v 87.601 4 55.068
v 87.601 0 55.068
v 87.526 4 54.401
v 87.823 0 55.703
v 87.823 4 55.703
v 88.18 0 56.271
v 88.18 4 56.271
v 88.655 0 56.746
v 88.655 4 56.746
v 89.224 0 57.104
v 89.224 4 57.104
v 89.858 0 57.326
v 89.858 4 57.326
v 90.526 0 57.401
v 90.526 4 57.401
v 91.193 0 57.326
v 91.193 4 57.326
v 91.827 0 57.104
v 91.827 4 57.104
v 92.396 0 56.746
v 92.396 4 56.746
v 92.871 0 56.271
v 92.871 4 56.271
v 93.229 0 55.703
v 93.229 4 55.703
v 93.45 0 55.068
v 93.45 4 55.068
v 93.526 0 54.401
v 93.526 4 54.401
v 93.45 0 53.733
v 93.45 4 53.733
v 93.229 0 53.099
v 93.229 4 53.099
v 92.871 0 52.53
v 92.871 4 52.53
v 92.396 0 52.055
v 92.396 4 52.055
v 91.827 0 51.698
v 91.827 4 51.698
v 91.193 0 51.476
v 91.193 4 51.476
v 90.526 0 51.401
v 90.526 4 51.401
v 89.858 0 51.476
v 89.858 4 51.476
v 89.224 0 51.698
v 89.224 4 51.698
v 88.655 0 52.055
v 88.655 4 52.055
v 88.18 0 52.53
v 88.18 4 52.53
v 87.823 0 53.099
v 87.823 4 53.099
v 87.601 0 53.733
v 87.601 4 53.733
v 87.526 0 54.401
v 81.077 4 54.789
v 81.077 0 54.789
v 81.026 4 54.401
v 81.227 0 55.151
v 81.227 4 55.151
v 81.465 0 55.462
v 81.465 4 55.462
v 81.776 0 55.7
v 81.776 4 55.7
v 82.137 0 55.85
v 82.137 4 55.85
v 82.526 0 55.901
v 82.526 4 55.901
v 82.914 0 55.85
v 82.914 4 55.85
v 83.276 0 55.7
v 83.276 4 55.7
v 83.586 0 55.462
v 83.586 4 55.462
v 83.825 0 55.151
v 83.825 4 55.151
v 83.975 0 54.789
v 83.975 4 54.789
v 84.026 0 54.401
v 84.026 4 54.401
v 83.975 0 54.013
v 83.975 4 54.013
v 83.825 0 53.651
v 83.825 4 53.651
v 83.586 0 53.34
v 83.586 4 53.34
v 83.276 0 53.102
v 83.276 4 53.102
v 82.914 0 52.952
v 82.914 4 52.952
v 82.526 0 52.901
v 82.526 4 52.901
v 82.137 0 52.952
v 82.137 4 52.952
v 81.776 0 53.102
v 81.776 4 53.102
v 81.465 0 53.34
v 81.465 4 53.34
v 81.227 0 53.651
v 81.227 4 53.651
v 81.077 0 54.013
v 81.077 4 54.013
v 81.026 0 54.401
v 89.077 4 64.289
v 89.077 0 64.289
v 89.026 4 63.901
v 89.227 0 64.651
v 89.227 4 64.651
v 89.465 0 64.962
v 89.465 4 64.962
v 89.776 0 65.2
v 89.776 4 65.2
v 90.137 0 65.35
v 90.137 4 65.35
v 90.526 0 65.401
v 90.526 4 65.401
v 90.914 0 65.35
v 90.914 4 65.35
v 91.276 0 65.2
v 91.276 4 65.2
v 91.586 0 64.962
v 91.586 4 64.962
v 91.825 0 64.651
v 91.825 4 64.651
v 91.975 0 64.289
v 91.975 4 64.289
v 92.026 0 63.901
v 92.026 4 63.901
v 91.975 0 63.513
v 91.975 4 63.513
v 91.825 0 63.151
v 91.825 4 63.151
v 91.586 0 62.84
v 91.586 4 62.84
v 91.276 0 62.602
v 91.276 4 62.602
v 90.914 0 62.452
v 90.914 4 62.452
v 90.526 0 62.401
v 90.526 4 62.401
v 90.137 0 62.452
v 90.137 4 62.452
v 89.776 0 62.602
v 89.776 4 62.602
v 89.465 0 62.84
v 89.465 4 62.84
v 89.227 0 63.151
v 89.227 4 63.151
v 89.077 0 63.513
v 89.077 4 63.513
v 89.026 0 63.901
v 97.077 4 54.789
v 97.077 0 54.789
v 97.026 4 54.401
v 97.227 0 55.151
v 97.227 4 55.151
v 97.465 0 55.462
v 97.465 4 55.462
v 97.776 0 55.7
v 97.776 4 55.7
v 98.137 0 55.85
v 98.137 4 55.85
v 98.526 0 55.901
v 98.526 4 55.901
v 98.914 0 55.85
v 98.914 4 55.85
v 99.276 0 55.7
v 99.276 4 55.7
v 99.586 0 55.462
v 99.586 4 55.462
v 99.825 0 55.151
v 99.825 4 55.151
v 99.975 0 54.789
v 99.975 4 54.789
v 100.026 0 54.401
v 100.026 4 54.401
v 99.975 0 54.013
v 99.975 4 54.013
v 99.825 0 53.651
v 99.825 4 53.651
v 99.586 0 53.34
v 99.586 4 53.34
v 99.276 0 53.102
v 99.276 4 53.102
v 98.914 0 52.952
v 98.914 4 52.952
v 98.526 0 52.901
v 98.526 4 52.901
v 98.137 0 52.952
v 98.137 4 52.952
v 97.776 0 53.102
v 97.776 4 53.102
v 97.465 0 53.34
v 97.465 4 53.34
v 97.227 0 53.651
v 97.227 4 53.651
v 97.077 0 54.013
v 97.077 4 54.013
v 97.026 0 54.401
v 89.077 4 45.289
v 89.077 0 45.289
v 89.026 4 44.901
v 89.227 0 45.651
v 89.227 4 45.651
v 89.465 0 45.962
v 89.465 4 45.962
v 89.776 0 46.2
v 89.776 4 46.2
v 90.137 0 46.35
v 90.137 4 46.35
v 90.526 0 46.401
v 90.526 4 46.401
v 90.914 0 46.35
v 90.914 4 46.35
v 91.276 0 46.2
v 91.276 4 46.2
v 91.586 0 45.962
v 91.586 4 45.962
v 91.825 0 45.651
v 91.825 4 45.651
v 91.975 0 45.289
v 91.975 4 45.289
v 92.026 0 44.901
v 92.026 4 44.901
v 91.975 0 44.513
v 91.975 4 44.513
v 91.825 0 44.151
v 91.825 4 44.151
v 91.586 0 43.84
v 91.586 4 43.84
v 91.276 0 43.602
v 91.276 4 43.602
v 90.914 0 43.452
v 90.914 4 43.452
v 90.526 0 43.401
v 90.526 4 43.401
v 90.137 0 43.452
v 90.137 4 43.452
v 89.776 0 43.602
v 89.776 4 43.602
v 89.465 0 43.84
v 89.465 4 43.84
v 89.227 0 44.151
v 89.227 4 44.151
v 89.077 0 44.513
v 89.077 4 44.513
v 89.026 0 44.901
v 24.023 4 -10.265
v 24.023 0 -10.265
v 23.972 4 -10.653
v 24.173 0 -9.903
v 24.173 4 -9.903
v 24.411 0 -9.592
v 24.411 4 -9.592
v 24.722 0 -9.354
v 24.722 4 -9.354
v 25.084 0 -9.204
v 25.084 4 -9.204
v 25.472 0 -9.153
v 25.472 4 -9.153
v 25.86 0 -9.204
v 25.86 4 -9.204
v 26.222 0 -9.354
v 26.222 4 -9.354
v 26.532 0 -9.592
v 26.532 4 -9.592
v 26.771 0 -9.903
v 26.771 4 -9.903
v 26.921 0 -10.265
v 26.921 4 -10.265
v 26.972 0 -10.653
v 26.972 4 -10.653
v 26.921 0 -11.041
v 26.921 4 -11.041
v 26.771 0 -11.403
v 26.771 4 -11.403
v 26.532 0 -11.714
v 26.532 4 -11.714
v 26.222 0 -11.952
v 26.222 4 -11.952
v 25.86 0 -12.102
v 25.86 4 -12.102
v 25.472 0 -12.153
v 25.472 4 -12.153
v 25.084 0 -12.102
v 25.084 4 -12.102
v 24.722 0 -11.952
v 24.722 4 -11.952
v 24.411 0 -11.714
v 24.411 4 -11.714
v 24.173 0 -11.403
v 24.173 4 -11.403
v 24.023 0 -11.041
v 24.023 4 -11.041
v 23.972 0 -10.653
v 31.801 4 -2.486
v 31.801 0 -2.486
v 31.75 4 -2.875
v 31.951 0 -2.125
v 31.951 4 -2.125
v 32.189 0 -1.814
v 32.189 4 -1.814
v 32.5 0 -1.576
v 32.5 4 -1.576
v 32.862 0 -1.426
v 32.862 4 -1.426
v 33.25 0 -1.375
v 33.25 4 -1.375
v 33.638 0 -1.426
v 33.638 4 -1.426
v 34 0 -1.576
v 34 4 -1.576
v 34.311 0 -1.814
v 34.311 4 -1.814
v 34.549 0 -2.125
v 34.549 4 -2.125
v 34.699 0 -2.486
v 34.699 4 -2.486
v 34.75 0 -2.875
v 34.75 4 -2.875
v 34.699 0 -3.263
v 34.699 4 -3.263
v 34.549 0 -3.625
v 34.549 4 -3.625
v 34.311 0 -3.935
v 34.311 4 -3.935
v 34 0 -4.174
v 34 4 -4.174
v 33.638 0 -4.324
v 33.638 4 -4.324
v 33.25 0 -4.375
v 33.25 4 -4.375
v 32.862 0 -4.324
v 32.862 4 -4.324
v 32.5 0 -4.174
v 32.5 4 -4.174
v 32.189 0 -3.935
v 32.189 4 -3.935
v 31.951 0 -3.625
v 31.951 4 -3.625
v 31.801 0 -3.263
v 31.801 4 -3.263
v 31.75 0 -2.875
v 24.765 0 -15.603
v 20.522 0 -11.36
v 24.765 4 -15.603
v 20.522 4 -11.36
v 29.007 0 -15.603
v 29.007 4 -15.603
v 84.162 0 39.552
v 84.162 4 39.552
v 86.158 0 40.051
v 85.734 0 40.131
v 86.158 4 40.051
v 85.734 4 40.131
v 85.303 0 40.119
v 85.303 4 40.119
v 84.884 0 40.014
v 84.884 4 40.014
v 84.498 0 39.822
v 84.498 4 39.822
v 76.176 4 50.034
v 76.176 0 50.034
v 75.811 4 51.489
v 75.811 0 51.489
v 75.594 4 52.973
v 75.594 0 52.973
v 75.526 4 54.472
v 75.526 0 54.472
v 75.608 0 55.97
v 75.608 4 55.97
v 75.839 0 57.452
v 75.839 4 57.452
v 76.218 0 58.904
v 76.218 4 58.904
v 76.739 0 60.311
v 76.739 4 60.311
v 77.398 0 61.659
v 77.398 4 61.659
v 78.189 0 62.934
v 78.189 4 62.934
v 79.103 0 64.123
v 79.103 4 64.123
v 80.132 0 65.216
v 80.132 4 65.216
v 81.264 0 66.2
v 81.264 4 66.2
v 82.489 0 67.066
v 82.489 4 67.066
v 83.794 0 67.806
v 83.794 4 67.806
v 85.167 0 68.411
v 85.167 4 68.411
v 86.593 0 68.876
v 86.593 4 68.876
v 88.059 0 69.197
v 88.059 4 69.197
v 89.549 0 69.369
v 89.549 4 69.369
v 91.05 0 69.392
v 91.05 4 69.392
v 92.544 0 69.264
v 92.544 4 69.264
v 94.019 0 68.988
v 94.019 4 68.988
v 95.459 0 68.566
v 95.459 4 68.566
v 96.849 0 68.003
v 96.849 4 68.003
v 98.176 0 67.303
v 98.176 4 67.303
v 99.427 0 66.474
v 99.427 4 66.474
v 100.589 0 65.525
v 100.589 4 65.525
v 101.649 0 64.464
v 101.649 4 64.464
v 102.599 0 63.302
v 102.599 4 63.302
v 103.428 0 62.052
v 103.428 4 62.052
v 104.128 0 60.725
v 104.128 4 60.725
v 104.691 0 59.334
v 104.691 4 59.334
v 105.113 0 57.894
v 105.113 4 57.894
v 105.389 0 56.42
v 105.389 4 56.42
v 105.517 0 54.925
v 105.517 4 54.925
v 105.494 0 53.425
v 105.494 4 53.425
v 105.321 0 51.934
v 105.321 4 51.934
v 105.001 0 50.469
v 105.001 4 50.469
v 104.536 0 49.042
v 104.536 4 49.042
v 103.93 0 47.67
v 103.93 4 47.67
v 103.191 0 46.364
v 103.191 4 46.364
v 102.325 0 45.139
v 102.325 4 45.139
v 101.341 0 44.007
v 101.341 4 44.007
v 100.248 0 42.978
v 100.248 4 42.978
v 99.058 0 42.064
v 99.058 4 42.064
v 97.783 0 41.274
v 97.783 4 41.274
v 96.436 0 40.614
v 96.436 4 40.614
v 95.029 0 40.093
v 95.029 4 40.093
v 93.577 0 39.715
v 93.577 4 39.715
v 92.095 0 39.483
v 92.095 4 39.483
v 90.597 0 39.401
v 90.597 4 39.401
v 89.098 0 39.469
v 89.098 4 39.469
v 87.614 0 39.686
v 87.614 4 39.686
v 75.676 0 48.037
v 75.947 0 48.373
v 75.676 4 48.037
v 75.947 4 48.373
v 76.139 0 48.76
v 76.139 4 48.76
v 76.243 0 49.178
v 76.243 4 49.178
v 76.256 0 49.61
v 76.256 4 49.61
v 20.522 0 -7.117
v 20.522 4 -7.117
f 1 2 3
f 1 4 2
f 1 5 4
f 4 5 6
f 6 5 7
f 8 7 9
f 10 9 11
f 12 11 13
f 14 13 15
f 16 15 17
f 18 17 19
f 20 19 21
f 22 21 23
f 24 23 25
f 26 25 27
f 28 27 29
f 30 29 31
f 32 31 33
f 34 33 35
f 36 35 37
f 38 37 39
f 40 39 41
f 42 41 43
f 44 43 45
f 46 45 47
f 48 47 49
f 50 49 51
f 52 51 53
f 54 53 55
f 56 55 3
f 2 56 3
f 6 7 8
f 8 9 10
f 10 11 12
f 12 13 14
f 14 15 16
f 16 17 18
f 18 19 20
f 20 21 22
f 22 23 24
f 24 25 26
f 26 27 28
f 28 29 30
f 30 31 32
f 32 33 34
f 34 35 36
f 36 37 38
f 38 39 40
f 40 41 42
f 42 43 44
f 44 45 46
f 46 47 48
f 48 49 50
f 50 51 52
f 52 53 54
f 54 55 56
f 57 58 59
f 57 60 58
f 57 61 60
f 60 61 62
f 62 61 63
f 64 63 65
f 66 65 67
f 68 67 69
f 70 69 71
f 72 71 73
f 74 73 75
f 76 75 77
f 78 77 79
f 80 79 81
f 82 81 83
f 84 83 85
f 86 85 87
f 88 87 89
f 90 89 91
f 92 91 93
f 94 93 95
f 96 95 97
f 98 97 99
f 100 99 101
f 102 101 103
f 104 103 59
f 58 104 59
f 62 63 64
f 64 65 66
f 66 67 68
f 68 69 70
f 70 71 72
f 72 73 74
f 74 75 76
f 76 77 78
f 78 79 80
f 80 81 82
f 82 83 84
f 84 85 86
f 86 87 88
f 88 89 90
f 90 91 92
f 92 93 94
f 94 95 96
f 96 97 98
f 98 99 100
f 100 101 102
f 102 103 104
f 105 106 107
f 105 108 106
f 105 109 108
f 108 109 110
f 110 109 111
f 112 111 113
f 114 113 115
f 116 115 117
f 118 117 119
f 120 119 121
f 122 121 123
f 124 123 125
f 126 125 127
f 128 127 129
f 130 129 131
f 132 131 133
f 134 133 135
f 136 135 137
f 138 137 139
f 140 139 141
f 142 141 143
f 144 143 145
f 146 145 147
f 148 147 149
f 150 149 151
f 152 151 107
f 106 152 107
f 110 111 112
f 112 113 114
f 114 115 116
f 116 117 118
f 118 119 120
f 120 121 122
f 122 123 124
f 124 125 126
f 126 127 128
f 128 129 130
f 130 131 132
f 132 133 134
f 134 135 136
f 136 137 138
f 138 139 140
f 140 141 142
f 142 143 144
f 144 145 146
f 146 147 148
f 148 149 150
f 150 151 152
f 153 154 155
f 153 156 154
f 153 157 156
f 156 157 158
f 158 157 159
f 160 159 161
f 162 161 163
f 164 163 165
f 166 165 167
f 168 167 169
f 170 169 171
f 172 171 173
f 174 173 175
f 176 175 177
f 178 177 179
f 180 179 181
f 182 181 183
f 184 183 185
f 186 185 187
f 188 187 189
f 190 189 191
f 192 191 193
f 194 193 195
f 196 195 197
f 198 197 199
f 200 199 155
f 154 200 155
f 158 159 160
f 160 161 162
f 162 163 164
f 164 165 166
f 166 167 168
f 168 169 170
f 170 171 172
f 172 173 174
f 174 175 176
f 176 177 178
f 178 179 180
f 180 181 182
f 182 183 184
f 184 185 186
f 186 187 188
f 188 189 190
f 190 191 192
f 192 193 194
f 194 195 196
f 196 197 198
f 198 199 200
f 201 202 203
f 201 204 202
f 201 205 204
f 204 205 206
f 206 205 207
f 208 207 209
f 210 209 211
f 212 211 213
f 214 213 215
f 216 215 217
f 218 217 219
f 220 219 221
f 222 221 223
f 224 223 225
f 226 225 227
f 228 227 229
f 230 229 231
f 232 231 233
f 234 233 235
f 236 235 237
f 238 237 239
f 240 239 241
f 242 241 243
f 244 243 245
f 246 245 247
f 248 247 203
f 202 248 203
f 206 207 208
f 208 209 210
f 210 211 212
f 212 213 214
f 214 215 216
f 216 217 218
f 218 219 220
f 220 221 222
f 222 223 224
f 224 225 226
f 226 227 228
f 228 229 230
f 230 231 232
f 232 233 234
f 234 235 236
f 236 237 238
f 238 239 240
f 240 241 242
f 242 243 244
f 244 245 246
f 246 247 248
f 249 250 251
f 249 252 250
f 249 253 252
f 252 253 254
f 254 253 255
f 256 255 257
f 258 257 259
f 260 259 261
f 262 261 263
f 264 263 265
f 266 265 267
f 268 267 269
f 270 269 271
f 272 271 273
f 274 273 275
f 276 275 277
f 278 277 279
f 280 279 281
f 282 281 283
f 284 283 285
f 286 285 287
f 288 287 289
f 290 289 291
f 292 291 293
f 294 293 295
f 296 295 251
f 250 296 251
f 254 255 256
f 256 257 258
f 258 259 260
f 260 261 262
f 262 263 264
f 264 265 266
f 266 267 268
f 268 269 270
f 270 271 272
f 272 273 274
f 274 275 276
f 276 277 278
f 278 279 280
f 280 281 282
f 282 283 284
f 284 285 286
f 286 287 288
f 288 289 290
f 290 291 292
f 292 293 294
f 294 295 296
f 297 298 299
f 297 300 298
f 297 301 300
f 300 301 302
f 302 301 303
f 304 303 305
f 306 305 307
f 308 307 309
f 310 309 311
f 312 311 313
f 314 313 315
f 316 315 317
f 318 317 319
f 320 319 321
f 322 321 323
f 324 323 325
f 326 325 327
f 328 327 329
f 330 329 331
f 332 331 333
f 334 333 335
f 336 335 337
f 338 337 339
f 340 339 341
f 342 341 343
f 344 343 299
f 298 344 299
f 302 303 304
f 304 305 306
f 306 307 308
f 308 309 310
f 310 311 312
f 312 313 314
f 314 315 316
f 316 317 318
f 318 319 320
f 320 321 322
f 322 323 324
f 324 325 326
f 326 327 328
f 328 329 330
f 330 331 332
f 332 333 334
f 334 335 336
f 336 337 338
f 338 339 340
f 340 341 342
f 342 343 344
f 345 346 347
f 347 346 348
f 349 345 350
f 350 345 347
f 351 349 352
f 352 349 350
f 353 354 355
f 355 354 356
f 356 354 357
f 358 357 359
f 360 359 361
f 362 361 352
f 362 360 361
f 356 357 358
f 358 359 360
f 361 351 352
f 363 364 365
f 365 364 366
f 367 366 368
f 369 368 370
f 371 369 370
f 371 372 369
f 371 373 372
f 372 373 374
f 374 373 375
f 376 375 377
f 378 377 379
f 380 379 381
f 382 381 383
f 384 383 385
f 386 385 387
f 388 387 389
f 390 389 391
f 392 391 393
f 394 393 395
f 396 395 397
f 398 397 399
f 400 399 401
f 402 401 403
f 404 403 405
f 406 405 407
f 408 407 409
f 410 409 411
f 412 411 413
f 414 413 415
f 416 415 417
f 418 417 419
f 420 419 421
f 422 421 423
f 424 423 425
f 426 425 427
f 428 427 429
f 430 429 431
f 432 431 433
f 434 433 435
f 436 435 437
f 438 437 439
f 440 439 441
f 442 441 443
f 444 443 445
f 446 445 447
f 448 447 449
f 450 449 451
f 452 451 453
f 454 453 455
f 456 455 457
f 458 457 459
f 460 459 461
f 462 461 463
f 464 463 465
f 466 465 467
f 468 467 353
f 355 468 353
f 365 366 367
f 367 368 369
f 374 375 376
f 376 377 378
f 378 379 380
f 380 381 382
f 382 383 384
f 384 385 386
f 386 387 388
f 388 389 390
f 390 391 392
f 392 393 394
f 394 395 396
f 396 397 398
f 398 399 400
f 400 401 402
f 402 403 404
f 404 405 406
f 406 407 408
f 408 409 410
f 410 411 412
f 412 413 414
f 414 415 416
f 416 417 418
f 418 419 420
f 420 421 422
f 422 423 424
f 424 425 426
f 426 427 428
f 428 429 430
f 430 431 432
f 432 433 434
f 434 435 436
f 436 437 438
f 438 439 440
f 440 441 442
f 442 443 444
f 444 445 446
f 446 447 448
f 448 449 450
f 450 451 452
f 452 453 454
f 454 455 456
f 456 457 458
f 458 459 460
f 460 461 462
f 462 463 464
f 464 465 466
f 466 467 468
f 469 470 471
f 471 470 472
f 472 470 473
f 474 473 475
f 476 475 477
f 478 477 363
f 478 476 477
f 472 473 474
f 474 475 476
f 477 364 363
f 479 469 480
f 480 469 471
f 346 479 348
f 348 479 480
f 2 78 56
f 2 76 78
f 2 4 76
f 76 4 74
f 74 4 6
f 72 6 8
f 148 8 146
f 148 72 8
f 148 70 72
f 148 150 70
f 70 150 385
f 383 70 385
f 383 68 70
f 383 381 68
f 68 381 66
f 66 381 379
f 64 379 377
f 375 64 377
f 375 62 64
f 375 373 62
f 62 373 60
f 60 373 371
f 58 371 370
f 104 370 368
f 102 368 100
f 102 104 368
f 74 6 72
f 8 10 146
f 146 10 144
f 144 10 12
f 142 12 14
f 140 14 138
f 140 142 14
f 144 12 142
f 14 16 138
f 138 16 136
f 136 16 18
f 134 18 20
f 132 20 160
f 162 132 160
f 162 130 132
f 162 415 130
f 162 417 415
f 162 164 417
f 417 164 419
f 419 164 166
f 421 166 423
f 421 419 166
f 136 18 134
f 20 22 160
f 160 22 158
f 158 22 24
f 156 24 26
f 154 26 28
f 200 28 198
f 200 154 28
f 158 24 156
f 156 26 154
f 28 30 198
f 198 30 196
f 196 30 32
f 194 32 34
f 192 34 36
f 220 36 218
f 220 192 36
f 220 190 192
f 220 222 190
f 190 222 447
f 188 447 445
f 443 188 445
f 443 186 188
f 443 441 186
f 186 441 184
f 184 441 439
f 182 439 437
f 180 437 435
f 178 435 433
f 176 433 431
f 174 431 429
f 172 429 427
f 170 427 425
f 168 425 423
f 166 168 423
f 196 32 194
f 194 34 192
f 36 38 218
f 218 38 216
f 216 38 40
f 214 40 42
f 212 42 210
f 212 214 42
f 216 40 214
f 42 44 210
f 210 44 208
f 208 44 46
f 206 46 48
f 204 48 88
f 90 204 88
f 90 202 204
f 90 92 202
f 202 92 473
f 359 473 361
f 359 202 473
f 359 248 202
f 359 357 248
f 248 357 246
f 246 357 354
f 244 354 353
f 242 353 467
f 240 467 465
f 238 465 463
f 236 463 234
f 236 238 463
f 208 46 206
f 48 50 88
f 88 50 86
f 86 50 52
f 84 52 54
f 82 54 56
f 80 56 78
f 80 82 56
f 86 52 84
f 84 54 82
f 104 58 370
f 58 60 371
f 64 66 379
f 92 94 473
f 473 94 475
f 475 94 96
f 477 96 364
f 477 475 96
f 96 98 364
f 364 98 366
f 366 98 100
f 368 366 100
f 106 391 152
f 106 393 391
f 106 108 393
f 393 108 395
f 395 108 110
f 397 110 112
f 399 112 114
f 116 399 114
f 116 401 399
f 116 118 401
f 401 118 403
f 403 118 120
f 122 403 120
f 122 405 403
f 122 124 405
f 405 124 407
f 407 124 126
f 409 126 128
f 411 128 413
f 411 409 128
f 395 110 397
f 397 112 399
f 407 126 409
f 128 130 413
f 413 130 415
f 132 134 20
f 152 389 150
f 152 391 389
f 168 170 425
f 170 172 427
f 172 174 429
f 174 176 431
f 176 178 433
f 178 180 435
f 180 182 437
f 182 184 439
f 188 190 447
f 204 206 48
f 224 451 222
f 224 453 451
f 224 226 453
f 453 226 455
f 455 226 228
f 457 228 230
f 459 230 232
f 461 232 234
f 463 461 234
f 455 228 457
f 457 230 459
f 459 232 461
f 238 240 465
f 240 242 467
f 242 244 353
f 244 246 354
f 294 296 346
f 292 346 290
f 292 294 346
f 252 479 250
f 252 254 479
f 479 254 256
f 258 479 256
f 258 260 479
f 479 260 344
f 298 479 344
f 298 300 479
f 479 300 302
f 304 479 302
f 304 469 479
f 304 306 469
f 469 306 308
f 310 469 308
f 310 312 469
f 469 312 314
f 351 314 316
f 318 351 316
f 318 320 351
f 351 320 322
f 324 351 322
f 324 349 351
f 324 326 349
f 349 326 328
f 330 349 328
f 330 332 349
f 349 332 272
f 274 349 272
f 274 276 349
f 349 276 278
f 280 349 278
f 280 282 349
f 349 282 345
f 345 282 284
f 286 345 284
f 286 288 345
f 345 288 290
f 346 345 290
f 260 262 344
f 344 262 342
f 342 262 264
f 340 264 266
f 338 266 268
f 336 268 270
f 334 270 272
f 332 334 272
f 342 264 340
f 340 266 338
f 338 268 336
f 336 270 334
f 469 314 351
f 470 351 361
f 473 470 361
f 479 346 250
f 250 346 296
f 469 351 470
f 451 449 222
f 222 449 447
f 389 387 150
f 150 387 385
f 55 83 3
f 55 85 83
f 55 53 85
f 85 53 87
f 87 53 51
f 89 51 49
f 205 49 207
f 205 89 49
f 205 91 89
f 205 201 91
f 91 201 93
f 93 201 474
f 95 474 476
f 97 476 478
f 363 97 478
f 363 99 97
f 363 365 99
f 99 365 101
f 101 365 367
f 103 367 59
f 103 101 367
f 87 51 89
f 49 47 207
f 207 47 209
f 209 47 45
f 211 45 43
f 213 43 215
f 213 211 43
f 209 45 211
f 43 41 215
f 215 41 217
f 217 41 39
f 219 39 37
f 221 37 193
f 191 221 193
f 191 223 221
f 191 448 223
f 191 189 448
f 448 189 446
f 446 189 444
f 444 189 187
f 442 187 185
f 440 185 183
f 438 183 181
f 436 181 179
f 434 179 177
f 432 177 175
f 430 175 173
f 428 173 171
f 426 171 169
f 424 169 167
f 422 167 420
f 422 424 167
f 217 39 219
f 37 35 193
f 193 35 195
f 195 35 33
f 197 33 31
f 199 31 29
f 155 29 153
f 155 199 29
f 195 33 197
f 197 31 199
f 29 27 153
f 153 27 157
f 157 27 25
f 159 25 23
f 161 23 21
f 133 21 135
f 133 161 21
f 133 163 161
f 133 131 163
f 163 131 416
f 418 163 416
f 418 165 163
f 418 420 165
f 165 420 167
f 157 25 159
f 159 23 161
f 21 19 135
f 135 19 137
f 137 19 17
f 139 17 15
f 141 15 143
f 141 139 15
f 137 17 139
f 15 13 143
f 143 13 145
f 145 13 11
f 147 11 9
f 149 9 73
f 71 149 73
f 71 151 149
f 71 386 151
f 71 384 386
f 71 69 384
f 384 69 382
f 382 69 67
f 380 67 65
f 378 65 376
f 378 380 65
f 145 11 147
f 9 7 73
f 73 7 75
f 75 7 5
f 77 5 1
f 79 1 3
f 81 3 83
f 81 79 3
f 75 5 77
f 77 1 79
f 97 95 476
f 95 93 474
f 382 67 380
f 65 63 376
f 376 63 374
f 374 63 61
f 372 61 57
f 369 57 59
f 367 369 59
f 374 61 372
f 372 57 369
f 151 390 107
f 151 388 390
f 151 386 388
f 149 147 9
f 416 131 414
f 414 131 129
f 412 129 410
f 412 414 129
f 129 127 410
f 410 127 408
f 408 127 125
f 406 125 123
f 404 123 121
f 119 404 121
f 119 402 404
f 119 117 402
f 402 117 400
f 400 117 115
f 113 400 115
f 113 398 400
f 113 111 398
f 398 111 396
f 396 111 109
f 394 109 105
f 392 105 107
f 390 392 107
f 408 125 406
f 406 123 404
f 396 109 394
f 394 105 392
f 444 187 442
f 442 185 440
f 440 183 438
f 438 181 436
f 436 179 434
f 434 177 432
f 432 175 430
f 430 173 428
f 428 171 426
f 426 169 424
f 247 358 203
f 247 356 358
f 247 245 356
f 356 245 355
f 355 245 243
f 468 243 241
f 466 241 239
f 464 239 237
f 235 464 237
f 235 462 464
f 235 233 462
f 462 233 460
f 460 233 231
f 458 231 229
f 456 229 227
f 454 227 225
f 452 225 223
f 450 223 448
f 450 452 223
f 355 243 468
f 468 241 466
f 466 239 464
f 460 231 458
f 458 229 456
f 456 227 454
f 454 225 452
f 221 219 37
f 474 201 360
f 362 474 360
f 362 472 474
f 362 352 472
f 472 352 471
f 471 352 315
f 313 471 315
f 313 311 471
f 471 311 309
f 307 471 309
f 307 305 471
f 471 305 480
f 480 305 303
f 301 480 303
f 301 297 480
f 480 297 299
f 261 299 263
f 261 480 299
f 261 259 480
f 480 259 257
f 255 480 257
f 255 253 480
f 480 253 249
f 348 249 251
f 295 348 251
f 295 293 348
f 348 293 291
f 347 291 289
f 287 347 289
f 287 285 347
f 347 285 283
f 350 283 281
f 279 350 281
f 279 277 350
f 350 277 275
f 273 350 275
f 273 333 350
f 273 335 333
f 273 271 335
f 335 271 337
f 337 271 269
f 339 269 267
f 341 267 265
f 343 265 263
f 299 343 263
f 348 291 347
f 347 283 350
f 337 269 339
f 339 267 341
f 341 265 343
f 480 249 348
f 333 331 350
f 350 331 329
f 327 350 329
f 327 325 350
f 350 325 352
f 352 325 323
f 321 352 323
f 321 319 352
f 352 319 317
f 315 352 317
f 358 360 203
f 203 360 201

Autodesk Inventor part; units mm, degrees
ref_plane "YZ Plane" through (0, 0, 0) normal (1, 0, 0) x (0, 1, 0)
ref_plane "XZ Plane" through (0, 0, 0) normal (0, 1, 0) x (-1, 0, 0)
sketch "Sketch1" plane through (0, 0, 0) normal (0, 1, 0) x (-1, 0, 0)
  arc A0 (-76.1755, 50.0335) -> (-86.1582, 40.0508) centre (-90.5256, 54.4009) ccw
  circle A1 centre (-25.4718, -10.6529) radius 1.5
  line L0 (-24.7647, -15.6026) -> (-20.5221, -11.36)
  line L1 (-24.7647, -15.6026) -> (-29.0074, -15.6026)
  line L2 (-20.5221, -11.36) -> (-20.5221, -7.1174)
  circle A2 centre (-33.25, -2.8747) radius 1.5
  circle A3 centre (-90.5256, 44.9009) radius 1.5
  circle A4 centre (-98.5256, 54.4009) radius 1.5
  circle A5 centre (-90.5256, 63.9009) radius 1.5
  circle A6 centre (-82.5256, 54.4009) radius 1.5
  circle A7 centre (-90.5256, 54.4009) radius 3
  arc A8 (-76.1755, 50.0335) -> (-75.6764, 48.037) centre (-74.2622, 49.4512) ccw
  arc A9 (-84.1617, 39.5517) -> (-86.1582, 40.0508) centre (-85.5759, 38.1375) ccw
  line L3 (-75.6764, 48.037) -> (-71.4338, 43.7943)
  line L4 (-84.1617, 39.5517) -> (-79.919, 35.309)
  line L5 (-20.5221, -7.1174) -> (-71.4338, 43.7943)
  line L6 (-29.0074, -15.6026) -> (-79.919, 35.309)
  point P0 (0, 0)
  point P1 (-18.4008, -9.2387)
  point P2 (-76.5619, 48.9225)
  point P3 (-85.0472, 40.4372)
  point P4 (-26.886, -17.724)
  point P5 (-76.5619, 48.9225)
  dimension "d2" = 3
  dimension "d3" = 3
  dimension "d4" = 3
  dimension "d6" = 6
  dimension "d10" = 2
extrude "Extrusion3" add sketch "Sketch1" along normal blind 4
ref_plane "Motor Simulering" through (0, 14, 0) normal (0, 1, 0) x (1, 0, 0)
sketch "Propeller" plane through (0, 14, 0) normal (0, 1, 0) x (1, 0, 0)
  circle A0 centre (90.5256, -54.4009) radius 63.5
  point P0 (0, 0)
  dimension "d26" = 127
properties part number "Arm2"
